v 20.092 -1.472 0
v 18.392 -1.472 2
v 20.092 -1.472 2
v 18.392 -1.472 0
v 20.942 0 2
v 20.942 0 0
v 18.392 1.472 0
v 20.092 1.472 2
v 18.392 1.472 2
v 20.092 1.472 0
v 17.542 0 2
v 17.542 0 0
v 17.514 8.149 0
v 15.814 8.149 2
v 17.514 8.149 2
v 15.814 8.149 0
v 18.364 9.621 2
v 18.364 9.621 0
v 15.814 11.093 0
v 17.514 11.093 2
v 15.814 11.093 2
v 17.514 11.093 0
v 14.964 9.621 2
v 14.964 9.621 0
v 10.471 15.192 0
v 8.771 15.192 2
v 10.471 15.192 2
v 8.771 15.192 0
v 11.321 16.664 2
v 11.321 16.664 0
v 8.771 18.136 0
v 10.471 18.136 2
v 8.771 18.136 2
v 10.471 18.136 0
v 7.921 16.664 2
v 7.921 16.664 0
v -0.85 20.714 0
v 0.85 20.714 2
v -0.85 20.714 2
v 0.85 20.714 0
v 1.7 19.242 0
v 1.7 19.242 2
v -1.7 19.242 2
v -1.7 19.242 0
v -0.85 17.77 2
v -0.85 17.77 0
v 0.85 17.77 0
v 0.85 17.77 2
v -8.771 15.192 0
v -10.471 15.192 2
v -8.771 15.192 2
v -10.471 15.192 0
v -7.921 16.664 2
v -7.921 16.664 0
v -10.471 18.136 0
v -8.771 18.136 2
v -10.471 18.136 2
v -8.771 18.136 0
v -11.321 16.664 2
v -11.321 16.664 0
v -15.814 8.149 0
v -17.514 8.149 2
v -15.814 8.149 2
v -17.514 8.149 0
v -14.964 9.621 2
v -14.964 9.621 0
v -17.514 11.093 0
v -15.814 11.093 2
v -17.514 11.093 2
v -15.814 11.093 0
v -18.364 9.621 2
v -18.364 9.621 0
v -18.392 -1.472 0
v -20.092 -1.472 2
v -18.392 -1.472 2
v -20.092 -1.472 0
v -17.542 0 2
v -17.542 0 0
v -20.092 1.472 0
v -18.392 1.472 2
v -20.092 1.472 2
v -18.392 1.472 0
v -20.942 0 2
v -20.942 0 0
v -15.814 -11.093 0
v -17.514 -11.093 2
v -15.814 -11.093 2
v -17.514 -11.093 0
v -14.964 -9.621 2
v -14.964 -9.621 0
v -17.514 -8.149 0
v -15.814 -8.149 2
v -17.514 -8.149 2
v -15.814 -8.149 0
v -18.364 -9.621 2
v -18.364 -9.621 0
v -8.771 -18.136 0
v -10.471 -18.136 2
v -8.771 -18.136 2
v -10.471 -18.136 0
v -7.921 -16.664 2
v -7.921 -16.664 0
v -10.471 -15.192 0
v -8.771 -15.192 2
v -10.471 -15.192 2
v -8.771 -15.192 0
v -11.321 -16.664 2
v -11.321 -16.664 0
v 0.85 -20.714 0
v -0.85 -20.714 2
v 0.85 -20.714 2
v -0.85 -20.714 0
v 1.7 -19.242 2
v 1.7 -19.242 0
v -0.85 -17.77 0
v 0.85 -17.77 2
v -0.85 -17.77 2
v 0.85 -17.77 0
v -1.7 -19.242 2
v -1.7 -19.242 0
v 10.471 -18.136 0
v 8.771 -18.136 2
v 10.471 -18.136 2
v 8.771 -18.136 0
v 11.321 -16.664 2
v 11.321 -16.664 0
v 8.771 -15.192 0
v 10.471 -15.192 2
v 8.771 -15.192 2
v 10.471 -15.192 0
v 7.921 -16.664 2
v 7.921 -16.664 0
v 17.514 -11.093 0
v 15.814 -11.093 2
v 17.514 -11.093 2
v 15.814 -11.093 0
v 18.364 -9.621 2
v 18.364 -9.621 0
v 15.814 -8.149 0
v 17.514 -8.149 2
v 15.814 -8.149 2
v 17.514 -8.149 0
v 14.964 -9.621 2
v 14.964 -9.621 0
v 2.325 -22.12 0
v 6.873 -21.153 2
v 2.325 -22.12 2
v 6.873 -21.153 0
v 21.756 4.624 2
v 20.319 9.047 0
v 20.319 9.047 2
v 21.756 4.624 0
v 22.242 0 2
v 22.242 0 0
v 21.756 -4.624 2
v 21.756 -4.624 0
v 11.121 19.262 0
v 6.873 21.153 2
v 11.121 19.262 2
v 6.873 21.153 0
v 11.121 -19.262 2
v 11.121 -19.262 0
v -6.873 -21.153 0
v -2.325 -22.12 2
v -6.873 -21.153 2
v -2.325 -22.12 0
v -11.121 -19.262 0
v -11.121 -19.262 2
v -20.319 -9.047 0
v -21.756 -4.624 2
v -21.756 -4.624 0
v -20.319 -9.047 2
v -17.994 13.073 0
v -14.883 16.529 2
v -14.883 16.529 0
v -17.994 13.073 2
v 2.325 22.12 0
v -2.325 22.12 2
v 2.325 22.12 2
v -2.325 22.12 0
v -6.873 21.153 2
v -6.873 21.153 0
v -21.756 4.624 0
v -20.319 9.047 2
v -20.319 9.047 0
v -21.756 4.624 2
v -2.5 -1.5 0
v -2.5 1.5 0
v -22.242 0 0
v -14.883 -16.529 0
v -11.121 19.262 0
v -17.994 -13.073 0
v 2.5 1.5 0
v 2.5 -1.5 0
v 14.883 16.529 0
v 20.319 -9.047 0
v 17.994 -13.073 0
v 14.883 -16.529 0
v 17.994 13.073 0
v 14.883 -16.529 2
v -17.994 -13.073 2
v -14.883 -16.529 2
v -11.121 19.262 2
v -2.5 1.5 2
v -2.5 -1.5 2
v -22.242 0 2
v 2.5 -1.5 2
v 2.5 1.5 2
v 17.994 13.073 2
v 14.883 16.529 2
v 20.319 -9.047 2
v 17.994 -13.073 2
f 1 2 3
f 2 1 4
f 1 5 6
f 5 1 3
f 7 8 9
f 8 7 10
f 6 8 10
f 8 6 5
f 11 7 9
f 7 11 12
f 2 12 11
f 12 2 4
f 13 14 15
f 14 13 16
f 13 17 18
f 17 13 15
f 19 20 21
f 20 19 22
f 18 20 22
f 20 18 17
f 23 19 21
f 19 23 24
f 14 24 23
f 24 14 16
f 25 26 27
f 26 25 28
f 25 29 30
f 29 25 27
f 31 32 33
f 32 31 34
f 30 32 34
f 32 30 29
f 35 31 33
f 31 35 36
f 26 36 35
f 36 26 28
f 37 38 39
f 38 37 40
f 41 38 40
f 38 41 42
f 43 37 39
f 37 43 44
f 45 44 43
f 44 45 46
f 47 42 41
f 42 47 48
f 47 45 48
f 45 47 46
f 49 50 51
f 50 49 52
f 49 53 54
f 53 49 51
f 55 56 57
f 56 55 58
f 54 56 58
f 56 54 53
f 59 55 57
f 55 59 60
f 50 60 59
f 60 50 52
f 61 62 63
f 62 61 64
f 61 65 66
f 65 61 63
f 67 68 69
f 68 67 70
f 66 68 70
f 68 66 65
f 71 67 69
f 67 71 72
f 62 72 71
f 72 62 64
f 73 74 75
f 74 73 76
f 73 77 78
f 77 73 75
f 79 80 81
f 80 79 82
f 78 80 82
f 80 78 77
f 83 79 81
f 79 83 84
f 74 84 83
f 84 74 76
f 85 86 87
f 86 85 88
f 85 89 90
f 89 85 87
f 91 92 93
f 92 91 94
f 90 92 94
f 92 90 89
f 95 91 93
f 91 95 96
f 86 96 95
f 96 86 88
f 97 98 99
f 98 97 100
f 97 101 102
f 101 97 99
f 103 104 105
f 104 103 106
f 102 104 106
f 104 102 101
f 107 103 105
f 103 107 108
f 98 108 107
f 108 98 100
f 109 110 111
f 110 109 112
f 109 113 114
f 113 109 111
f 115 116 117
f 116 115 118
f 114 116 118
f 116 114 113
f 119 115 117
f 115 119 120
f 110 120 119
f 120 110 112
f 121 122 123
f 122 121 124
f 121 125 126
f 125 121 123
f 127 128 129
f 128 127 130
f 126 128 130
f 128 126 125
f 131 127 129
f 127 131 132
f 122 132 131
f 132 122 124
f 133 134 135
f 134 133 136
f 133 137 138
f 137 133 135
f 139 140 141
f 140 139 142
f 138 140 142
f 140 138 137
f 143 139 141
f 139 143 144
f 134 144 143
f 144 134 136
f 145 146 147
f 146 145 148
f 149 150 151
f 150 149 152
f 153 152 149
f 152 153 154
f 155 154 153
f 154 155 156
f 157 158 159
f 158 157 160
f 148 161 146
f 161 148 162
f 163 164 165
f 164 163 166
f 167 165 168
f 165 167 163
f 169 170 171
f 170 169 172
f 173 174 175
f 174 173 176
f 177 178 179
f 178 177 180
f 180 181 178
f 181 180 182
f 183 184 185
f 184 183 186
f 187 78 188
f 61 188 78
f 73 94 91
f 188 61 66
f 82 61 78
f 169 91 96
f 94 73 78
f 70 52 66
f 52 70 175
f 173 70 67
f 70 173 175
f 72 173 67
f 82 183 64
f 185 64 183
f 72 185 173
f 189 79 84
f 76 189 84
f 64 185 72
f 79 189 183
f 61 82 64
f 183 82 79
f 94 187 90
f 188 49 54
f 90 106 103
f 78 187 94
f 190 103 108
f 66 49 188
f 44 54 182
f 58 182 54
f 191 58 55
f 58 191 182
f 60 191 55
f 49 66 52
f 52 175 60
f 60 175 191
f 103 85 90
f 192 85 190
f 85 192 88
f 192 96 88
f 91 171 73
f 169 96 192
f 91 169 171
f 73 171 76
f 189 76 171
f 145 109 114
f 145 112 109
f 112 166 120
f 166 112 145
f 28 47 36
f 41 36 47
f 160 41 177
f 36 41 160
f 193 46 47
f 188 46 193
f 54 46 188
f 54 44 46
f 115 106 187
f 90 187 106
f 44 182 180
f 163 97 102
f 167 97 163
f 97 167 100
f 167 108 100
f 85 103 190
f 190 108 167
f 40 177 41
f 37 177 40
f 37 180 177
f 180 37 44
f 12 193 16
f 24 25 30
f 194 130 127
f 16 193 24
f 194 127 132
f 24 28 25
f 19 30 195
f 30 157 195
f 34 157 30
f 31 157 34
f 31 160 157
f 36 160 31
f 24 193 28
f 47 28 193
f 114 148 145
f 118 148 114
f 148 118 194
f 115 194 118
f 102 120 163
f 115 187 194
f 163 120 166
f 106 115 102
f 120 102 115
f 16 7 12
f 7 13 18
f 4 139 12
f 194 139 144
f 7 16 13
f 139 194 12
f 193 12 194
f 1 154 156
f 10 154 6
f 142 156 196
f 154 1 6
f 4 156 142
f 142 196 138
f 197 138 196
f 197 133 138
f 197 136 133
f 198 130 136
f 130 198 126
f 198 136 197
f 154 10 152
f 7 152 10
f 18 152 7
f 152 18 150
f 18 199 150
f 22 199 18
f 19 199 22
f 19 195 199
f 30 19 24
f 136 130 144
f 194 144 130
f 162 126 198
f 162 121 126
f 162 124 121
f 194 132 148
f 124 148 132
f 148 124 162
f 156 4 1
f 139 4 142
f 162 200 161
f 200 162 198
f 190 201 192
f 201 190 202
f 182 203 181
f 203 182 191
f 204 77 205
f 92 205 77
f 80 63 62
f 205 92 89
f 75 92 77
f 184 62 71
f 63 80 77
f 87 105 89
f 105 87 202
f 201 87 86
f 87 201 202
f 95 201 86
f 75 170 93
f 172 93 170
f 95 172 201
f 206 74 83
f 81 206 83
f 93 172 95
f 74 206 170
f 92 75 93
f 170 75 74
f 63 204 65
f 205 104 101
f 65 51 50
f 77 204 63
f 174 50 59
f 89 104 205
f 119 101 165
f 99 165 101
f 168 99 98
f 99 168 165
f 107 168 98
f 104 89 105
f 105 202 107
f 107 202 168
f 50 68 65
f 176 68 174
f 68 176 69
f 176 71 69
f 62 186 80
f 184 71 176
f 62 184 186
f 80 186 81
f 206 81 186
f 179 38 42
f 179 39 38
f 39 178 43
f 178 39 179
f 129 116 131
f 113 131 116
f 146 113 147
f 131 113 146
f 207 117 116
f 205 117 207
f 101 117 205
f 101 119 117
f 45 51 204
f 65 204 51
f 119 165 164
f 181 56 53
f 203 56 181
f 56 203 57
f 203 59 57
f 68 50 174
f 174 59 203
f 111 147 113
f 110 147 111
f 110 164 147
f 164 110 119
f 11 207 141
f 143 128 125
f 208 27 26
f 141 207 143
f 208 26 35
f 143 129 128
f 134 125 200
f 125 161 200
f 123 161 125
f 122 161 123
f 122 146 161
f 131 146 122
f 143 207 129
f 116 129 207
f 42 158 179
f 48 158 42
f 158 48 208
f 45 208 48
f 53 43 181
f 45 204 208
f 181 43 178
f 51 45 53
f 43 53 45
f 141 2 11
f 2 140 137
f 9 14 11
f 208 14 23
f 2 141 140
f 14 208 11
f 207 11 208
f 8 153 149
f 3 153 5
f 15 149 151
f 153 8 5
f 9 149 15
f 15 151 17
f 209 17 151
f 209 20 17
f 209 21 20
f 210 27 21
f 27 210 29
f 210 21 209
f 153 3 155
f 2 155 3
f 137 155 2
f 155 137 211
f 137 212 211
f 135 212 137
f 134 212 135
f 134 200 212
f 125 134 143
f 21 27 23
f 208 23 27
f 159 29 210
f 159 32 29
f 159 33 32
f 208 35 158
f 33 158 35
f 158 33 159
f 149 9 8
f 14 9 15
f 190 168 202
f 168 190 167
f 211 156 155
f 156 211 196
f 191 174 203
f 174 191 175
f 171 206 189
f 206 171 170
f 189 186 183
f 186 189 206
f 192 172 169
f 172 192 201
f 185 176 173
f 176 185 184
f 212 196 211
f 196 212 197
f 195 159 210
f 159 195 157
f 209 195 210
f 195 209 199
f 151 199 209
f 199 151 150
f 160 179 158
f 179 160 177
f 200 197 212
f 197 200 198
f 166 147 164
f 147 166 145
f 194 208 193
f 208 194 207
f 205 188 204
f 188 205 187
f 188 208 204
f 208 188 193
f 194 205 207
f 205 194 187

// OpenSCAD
// file: constants.scad
anchor_x = 17.5;
anchor_y = 8;
wheel_h = 2;
wheel_r = sqrt((anchor_x)^2 + (anchor_y)^2) + 3;
// main file
include <constants.scad>;

module wheel(){
    difference(){
        cylinder(h = wheel_h, r = wheel_r, center = false);
        holes = 3;
        for (i = [0: holes * 4]){
            angle = i * 90/holes;
            x = (wheel_r - 3) * cos(angle);
            y = (wheel_r - 3) * sin(angle);
            translate([x, y, 0]){
                cylinder(h = 5, r = 1.7, center = true);
            }
        }
        cube([5, 3, 5], center = true);
    }
}

wheel();
